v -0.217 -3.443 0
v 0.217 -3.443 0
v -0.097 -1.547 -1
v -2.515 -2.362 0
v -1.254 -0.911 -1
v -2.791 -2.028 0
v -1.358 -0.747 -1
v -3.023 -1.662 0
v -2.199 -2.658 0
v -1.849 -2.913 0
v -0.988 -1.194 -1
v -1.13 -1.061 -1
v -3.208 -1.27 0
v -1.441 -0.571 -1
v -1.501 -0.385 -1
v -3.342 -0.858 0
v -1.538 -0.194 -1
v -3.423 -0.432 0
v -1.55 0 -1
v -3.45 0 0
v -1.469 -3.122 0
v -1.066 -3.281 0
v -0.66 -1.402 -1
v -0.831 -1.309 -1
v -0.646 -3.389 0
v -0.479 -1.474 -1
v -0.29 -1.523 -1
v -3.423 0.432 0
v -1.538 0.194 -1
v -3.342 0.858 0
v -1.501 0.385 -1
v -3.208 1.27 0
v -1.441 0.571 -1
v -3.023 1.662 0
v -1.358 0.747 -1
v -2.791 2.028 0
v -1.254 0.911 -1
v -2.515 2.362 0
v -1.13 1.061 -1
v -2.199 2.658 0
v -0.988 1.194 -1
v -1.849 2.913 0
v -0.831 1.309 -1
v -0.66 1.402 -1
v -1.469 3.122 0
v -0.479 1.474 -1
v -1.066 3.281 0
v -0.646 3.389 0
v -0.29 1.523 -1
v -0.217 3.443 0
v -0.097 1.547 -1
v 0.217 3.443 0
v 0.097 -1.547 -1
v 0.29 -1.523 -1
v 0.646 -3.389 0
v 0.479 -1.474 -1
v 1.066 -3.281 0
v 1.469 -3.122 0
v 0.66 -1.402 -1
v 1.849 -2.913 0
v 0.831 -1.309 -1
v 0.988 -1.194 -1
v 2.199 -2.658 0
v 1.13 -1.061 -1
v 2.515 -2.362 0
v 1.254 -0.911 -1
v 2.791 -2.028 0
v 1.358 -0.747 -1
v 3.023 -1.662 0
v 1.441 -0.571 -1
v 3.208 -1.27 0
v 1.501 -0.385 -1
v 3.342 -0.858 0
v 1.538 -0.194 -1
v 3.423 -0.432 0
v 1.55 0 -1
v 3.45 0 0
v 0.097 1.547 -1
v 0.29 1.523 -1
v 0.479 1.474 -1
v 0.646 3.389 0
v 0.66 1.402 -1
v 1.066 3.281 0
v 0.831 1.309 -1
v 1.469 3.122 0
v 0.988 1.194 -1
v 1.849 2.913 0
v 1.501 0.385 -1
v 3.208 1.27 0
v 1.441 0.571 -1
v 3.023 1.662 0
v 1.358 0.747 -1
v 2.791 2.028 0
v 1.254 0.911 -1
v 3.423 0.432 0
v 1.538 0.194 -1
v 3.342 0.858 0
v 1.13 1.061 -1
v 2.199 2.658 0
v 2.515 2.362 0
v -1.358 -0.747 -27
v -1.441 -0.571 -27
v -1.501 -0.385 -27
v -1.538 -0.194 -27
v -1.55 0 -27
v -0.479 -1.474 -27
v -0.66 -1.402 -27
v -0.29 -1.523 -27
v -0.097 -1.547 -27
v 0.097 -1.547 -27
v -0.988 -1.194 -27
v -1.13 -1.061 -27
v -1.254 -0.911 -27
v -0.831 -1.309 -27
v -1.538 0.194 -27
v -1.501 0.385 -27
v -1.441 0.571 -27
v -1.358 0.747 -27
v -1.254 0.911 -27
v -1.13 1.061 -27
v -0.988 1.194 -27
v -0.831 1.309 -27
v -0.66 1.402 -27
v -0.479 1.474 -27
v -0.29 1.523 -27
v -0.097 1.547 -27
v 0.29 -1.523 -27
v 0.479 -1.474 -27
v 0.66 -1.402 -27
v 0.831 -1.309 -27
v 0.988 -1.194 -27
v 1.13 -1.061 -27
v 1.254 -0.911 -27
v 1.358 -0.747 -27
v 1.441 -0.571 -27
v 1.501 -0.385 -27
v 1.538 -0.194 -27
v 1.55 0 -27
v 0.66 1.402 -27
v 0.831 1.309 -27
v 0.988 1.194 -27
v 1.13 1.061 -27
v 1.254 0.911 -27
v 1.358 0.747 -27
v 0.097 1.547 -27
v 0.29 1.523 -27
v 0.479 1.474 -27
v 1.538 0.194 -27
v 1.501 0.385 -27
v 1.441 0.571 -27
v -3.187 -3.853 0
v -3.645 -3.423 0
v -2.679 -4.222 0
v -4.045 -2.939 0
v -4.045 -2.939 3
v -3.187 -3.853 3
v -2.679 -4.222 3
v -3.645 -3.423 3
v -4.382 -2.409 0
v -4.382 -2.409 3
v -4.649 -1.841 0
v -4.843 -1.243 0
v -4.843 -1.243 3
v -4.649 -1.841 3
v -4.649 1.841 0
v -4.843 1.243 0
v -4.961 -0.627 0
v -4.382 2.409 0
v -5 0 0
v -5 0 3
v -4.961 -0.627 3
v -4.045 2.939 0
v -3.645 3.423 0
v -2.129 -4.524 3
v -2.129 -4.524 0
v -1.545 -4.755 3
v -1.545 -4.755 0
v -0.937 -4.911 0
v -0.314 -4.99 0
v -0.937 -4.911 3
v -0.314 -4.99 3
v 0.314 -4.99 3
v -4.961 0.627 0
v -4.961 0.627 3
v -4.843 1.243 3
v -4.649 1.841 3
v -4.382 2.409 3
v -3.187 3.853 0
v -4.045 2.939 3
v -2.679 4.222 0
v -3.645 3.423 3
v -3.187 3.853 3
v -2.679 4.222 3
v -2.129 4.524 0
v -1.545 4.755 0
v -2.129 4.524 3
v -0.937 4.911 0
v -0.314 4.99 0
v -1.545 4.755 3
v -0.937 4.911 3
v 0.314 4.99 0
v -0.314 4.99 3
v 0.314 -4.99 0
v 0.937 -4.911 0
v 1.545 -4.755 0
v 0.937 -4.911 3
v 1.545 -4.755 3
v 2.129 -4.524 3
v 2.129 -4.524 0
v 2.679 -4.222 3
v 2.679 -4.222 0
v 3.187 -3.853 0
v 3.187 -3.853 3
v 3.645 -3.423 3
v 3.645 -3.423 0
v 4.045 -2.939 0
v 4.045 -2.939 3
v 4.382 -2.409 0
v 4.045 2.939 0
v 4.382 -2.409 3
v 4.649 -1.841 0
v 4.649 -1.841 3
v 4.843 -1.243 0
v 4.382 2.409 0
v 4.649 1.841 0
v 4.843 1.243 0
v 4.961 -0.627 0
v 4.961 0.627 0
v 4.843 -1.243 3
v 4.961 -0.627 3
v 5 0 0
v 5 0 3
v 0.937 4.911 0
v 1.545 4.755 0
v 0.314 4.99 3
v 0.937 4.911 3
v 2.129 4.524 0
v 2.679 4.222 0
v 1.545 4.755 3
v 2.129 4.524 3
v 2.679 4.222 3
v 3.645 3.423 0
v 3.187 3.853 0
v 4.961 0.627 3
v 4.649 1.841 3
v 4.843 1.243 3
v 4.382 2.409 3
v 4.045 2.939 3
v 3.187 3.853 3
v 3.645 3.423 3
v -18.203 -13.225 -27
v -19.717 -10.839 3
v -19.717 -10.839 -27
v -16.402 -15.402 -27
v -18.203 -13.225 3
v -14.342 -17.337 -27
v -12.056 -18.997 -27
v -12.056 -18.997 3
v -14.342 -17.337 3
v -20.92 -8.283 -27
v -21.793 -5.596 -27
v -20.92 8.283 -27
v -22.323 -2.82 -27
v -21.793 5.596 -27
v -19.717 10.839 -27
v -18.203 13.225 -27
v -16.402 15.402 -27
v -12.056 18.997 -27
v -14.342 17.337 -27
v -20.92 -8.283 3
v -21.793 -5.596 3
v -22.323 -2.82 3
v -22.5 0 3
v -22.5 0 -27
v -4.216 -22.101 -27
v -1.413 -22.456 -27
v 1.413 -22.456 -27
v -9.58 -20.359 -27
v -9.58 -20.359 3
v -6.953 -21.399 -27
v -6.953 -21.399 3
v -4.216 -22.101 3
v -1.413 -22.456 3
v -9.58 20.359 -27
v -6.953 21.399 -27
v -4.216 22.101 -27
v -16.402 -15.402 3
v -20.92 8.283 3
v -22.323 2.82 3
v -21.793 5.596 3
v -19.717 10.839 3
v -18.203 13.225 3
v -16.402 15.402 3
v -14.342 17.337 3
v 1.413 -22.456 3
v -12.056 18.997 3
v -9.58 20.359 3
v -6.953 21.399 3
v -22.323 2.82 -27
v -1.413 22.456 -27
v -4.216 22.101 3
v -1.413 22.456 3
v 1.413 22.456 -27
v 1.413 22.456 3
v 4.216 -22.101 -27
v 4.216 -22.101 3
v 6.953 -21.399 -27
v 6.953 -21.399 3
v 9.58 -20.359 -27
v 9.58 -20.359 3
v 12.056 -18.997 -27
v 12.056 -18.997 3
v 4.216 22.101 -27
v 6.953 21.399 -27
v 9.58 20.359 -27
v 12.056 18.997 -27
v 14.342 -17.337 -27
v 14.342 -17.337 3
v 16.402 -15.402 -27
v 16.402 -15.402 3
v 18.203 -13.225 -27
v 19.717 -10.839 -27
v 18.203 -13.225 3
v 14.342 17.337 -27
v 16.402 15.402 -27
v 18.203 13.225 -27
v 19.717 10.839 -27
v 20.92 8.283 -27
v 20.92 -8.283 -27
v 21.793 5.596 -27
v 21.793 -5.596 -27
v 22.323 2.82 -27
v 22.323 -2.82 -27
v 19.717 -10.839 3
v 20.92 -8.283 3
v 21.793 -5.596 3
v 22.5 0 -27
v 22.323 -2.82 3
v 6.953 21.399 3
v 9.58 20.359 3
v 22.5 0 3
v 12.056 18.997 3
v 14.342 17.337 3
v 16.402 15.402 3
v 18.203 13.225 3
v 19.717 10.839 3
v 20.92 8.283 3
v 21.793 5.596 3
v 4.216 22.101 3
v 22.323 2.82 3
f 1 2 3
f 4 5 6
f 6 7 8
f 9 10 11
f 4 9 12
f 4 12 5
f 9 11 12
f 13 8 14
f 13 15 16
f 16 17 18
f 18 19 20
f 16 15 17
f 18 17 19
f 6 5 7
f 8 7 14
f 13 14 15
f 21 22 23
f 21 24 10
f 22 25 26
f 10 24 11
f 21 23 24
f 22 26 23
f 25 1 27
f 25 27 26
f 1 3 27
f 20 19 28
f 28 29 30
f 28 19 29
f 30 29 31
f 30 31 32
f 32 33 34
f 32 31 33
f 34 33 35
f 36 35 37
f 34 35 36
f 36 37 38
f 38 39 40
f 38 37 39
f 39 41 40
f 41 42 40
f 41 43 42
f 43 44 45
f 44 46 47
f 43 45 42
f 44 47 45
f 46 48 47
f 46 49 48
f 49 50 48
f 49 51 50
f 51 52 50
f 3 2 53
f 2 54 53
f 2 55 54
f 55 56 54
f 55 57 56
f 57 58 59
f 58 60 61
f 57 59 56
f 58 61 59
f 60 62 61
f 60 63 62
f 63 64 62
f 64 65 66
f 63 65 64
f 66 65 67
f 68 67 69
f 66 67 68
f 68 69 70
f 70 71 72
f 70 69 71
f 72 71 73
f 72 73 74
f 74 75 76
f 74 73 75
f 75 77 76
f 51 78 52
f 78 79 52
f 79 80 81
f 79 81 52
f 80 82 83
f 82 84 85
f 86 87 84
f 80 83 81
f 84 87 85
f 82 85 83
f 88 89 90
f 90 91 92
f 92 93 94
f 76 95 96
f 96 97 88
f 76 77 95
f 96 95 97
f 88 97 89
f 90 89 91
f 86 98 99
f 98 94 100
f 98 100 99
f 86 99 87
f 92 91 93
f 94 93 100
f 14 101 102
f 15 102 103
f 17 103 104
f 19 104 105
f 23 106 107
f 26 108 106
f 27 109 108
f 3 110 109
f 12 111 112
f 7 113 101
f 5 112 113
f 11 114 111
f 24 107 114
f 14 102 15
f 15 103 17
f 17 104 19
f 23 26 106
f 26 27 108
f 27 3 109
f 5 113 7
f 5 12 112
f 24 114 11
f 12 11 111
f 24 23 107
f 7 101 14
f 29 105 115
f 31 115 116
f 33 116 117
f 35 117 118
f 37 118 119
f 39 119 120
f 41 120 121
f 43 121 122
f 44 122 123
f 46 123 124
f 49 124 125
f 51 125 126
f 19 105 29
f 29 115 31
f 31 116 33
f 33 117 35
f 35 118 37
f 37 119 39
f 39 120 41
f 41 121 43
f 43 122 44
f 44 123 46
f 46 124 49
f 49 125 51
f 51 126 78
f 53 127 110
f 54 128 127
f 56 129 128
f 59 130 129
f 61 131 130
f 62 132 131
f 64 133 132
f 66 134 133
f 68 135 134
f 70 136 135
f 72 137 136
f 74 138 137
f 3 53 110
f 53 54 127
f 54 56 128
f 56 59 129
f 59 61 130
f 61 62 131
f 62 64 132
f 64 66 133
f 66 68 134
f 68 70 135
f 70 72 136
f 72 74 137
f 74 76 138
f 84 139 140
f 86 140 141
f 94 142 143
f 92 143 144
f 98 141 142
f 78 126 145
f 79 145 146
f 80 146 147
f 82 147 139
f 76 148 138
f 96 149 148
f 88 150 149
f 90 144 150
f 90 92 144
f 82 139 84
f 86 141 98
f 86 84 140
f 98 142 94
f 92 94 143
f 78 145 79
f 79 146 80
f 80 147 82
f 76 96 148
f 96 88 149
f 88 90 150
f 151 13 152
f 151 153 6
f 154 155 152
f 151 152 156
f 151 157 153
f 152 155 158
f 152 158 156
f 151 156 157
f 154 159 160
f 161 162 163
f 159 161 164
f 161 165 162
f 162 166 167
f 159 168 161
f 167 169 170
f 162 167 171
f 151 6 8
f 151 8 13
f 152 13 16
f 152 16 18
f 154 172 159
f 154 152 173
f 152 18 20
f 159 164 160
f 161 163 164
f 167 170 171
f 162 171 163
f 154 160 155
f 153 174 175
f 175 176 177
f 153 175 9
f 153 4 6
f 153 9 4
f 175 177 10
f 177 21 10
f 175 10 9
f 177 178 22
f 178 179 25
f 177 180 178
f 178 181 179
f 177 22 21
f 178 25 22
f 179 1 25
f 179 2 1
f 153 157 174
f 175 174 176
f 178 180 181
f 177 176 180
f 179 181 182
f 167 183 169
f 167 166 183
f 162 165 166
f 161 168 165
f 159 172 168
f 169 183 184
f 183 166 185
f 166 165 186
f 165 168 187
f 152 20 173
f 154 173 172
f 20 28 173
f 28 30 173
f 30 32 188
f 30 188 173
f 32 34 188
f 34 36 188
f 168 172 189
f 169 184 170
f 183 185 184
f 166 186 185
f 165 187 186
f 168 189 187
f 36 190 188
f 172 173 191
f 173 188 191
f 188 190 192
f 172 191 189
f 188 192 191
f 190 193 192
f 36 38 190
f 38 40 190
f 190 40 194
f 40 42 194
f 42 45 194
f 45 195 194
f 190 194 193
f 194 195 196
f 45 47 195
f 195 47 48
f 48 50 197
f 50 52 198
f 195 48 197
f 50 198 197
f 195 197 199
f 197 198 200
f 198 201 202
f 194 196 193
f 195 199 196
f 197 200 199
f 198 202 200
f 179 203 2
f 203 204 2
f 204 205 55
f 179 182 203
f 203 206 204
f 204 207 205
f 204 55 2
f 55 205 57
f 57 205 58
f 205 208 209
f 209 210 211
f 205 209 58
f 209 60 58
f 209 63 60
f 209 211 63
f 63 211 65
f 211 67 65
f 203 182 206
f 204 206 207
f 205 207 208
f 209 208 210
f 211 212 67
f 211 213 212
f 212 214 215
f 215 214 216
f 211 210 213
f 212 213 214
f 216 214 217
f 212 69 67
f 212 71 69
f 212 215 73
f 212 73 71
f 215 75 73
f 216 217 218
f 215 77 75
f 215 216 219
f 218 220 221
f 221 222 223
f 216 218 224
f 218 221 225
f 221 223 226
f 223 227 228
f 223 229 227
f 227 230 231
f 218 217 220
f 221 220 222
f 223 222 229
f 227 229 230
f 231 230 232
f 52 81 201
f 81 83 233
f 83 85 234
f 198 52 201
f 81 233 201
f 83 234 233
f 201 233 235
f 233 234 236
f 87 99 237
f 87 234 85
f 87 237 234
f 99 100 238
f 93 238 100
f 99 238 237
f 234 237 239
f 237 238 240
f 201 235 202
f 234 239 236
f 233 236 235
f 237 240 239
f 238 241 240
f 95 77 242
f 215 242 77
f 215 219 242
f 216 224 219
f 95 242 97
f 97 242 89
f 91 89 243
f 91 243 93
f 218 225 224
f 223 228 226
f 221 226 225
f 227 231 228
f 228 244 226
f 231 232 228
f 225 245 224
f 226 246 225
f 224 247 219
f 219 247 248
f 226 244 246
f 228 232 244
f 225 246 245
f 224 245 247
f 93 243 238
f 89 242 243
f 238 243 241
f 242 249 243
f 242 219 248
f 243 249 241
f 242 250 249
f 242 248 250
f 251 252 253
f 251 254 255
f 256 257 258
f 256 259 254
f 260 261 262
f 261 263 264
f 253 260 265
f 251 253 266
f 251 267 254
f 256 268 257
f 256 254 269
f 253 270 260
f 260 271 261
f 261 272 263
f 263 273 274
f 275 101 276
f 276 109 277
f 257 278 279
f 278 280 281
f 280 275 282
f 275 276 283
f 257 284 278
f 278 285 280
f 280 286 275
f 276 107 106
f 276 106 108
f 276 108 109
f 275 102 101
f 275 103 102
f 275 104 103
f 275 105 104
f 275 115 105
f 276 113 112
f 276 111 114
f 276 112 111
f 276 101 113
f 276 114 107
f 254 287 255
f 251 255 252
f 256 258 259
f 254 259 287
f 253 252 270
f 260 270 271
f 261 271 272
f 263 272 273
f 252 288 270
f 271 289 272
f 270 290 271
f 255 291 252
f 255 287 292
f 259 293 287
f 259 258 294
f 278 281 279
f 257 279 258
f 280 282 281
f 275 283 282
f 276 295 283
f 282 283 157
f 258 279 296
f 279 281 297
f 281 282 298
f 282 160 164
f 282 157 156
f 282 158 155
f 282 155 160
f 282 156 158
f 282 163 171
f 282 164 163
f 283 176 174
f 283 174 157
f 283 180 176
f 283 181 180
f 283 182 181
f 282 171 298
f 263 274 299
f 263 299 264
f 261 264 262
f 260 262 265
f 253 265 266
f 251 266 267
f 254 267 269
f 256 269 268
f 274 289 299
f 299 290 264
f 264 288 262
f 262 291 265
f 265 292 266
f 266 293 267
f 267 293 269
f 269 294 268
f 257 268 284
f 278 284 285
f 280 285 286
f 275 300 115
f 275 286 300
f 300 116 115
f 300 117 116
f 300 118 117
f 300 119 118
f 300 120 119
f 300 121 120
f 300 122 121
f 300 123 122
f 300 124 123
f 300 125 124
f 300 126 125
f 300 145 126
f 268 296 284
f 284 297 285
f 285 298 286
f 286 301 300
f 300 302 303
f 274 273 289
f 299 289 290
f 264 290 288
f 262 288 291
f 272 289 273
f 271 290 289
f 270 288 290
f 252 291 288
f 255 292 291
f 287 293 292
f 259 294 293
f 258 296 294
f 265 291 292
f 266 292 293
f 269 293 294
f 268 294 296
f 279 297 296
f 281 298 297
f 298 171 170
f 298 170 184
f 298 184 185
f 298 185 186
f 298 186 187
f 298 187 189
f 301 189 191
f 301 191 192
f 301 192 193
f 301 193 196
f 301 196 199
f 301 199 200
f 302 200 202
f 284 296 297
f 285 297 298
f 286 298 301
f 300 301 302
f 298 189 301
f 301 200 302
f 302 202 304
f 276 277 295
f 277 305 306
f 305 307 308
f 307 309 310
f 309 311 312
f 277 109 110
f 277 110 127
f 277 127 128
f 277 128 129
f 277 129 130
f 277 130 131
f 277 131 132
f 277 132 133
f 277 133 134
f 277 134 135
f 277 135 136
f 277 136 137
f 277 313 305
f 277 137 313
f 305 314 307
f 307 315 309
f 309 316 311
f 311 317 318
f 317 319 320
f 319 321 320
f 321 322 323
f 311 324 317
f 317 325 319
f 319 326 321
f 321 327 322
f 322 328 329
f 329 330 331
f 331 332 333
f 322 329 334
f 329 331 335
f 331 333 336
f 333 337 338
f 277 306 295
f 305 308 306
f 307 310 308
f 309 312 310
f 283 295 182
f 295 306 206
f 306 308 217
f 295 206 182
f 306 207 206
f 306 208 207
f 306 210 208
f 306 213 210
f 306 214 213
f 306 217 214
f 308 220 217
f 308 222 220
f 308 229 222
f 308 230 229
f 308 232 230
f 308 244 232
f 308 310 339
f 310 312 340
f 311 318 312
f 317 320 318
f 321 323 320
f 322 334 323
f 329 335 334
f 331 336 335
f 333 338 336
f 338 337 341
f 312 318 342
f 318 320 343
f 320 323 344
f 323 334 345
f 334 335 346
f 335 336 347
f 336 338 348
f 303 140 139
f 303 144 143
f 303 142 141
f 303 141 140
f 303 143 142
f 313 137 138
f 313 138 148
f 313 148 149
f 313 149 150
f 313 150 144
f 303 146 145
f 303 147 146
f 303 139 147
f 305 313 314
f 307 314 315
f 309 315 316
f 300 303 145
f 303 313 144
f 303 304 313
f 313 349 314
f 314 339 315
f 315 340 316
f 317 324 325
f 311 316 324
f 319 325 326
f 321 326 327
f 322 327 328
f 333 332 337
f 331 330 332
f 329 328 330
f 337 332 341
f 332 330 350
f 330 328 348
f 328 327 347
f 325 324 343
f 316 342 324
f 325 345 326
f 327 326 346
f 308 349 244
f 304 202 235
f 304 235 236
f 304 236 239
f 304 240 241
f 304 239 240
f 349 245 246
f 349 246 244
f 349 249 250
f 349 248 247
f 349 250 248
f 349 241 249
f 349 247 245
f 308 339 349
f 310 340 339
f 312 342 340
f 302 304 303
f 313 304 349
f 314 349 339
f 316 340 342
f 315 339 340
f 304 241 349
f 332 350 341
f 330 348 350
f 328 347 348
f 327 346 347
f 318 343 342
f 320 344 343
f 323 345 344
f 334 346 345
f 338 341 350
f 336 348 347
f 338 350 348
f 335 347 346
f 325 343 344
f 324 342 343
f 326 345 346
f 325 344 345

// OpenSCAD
$fn = 50;

difference() {
	union() {
		translate(v = [0, 0, -27.0]) {
			cylinder(h = 30, r = 22.5);
		}
	}
	union() {
		translate(v = [0, 0, 0]) {
			rotate(a = [0, 0, 0]) {
				difference() {
					union() {
						translate(v = [0, 0, -30.0]) {
							cylinder(h = 30, r = 1.25);
						}
						translate(v = [0, 0, -1.0]) {
							cylinder(h = 1.0, r1 = 1.55, r2 = 3.45);
						}
						translate(v = [0, 0, -30.0]) {
							cylinder(h = 30, r = 1.55);
						}
						translate(v = [0, 0, -30.0]) {
							cylinder(h = 30, r = 1.25);
						}
					}
					union();
				}
			}
		}
		#cylinder(h = 3, r = 5.0);
	}
}
